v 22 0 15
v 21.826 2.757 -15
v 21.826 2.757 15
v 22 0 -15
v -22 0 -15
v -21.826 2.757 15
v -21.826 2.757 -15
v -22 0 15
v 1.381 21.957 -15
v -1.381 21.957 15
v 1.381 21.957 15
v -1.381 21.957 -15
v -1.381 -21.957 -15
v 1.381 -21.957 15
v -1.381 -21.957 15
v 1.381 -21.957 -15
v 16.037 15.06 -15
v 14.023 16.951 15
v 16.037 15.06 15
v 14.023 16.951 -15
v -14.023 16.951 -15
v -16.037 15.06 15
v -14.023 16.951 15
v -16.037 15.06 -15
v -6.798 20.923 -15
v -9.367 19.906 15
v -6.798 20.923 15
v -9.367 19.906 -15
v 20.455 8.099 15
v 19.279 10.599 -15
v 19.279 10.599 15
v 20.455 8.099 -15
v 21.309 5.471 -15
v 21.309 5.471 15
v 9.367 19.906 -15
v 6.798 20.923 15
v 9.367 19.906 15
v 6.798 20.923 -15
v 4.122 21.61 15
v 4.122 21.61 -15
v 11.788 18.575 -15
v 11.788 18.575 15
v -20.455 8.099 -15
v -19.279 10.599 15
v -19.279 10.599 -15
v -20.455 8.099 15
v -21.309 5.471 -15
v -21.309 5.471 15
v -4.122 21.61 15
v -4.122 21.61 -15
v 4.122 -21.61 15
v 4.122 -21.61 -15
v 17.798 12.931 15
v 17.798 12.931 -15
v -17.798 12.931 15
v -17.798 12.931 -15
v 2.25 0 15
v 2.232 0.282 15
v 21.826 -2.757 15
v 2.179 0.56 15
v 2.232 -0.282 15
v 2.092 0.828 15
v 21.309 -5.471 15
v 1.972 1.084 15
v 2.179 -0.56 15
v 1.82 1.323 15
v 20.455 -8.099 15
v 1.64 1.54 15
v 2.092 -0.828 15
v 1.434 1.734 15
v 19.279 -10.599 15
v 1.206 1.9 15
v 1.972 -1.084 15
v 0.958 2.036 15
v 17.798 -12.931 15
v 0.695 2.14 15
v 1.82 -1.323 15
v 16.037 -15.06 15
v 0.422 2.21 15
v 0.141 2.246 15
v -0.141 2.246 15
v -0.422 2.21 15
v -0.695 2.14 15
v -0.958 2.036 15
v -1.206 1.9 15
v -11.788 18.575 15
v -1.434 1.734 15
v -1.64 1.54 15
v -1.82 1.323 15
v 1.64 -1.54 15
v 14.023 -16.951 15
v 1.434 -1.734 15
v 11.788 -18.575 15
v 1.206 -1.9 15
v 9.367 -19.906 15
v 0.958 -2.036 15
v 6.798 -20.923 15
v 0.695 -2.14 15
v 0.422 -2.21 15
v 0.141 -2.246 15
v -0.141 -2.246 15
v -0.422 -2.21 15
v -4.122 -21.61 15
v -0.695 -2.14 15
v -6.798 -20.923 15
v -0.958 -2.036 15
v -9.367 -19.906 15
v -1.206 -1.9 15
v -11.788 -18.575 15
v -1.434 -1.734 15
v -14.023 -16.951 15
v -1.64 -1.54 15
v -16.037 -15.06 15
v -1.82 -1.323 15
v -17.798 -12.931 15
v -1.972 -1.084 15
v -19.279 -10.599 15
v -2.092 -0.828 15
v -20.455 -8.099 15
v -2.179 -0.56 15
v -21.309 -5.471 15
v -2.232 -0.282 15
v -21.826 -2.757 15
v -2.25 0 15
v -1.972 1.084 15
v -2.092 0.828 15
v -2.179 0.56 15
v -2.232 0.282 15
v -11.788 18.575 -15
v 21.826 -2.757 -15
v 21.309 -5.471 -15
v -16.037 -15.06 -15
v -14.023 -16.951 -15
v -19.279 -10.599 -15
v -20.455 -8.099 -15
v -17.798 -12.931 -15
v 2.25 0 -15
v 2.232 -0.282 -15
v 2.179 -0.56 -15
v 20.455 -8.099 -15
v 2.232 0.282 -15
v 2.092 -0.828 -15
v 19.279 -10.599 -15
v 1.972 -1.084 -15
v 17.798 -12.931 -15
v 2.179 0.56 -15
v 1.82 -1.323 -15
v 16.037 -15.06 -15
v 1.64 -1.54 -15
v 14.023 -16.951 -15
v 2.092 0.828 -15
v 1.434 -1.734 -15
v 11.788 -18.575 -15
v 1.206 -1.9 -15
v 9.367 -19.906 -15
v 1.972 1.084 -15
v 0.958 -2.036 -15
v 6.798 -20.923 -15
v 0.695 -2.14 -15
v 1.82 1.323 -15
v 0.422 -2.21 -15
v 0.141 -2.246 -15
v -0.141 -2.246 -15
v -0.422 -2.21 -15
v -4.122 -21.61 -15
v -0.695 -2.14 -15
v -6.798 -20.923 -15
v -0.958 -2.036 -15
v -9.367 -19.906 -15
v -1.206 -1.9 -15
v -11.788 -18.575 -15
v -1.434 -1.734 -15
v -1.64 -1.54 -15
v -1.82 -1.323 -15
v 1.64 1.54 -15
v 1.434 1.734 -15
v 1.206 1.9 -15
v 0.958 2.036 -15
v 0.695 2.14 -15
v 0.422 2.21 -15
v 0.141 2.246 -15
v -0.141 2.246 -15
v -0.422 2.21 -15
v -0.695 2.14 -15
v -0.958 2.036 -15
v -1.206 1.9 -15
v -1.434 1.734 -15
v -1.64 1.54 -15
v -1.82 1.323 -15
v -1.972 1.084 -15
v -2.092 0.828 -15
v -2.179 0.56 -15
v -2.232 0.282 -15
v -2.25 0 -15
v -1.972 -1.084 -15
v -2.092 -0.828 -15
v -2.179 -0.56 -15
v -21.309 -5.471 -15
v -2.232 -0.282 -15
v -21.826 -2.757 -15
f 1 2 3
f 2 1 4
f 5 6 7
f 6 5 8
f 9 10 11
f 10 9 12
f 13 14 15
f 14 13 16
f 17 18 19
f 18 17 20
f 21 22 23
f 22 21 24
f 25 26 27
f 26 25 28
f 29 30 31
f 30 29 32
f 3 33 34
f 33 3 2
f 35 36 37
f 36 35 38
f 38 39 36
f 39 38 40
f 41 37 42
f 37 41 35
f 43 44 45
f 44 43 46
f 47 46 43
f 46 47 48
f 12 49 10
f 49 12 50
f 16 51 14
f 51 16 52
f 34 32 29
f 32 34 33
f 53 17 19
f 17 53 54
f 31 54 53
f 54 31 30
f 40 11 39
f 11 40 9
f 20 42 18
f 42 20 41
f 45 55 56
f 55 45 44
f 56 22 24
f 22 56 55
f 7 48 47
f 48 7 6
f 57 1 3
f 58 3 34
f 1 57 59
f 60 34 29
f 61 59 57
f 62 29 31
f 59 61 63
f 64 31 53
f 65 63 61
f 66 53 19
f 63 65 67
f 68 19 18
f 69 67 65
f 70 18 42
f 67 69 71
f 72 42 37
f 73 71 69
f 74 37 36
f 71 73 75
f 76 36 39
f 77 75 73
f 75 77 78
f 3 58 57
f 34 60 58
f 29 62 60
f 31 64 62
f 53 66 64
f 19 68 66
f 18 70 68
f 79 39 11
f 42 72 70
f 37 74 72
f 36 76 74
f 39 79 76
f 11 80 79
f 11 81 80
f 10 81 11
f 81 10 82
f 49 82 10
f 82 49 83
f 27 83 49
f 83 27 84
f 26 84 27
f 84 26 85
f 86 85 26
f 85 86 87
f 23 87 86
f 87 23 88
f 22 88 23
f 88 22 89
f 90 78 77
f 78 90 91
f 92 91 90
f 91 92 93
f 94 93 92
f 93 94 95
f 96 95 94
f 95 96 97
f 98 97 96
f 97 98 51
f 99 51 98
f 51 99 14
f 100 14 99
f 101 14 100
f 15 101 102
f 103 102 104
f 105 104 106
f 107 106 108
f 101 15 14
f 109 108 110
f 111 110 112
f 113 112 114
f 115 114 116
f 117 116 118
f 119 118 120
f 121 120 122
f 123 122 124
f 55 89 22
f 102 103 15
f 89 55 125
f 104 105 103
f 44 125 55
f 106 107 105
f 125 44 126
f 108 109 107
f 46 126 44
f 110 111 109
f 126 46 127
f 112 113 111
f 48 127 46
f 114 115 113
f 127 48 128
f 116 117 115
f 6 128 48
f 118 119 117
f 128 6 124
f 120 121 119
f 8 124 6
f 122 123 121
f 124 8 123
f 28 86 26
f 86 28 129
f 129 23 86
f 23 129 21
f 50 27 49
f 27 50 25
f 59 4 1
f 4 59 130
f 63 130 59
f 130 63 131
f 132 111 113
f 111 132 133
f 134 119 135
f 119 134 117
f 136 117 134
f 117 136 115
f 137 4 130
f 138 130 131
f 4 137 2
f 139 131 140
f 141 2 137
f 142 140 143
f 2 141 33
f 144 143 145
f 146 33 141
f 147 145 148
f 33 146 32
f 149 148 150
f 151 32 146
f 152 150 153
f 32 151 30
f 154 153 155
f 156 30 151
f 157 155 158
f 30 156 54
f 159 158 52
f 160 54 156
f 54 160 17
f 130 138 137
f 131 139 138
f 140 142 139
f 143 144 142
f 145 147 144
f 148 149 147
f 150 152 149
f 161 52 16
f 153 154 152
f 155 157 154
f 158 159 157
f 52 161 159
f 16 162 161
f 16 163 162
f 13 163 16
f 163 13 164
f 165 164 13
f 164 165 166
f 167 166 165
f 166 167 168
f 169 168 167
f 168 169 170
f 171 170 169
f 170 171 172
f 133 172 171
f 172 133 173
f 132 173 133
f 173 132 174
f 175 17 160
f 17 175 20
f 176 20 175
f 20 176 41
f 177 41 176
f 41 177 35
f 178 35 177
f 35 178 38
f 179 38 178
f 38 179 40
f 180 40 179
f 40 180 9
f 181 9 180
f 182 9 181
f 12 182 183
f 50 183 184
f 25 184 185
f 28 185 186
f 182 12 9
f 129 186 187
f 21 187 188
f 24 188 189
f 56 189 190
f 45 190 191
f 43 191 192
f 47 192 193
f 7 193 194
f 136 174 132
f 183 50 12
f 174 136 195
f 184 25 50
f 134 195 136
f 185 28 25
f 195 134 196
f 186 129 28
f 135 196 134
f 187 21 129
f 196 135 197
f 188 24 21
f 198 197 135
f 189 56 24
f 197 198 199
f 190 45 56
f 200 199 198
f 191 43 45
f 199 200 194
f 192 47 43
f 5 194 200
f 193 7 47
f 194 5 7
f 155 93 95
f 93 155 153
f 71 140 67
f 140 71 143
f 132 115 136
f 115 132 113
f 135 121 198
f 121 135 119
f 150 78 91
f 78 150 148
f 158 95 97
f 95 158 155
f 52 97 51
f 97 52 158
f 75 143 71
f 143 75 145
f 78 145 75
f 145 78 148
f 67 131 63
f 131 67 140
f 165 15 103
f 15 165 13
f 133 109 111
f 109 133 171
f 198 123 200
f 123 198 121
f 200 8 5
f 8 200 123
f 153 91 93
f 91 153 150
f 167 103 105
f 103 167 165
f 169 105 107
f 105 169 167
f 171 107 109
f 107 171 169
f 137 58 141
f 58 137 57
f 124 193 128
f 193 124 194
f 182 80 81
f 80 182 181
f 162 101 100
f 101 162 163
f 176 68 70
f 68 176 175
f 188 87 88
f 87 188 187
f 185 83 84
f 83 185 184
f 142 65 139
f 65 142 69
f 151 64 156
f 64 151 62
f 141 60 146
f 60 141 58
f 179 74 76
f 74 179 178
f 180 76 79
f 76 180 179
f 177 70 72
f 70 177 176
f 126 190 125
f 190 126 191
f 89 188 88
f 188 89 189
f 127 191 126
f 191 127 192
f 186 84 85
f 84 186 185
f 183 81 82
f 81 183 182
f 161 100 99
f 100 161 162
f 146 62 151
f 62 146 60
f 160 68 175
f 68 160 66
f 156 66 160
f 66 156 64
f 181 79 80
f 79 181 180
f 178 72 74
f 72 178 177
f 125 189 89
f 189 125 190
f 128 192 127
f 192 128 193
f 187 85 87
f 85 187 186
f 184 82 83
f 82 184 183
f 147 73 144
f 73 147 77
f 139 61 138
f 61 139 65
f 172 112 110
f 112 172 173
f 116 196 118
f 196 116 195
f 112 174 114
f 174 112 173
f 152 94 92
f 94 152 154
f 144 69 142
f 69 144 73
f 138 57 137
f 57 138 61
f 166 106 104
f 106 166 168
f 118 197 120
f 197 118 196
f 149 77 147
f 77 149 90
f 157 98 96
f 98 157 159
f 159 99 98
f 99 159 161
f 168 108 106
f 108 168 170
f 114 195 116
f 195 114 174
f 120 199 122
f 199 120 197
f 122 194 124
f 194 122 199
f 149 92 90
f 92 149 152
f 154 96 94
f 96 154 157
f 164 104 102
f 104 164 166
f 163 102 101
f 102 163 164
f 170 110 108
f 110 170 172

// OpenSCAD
$fn = 50;


difference() {
	union() {
		translate(v = [0, 0, -15.0000000000]) {
			cylinder(h = 30, r = 22.0000000000);
		}
	}
	union() {
		translate(v = [0, 0, -100.0000000000]) {
			cylinder(h = 200, r = 2.2500000000);
		}
	}
}
